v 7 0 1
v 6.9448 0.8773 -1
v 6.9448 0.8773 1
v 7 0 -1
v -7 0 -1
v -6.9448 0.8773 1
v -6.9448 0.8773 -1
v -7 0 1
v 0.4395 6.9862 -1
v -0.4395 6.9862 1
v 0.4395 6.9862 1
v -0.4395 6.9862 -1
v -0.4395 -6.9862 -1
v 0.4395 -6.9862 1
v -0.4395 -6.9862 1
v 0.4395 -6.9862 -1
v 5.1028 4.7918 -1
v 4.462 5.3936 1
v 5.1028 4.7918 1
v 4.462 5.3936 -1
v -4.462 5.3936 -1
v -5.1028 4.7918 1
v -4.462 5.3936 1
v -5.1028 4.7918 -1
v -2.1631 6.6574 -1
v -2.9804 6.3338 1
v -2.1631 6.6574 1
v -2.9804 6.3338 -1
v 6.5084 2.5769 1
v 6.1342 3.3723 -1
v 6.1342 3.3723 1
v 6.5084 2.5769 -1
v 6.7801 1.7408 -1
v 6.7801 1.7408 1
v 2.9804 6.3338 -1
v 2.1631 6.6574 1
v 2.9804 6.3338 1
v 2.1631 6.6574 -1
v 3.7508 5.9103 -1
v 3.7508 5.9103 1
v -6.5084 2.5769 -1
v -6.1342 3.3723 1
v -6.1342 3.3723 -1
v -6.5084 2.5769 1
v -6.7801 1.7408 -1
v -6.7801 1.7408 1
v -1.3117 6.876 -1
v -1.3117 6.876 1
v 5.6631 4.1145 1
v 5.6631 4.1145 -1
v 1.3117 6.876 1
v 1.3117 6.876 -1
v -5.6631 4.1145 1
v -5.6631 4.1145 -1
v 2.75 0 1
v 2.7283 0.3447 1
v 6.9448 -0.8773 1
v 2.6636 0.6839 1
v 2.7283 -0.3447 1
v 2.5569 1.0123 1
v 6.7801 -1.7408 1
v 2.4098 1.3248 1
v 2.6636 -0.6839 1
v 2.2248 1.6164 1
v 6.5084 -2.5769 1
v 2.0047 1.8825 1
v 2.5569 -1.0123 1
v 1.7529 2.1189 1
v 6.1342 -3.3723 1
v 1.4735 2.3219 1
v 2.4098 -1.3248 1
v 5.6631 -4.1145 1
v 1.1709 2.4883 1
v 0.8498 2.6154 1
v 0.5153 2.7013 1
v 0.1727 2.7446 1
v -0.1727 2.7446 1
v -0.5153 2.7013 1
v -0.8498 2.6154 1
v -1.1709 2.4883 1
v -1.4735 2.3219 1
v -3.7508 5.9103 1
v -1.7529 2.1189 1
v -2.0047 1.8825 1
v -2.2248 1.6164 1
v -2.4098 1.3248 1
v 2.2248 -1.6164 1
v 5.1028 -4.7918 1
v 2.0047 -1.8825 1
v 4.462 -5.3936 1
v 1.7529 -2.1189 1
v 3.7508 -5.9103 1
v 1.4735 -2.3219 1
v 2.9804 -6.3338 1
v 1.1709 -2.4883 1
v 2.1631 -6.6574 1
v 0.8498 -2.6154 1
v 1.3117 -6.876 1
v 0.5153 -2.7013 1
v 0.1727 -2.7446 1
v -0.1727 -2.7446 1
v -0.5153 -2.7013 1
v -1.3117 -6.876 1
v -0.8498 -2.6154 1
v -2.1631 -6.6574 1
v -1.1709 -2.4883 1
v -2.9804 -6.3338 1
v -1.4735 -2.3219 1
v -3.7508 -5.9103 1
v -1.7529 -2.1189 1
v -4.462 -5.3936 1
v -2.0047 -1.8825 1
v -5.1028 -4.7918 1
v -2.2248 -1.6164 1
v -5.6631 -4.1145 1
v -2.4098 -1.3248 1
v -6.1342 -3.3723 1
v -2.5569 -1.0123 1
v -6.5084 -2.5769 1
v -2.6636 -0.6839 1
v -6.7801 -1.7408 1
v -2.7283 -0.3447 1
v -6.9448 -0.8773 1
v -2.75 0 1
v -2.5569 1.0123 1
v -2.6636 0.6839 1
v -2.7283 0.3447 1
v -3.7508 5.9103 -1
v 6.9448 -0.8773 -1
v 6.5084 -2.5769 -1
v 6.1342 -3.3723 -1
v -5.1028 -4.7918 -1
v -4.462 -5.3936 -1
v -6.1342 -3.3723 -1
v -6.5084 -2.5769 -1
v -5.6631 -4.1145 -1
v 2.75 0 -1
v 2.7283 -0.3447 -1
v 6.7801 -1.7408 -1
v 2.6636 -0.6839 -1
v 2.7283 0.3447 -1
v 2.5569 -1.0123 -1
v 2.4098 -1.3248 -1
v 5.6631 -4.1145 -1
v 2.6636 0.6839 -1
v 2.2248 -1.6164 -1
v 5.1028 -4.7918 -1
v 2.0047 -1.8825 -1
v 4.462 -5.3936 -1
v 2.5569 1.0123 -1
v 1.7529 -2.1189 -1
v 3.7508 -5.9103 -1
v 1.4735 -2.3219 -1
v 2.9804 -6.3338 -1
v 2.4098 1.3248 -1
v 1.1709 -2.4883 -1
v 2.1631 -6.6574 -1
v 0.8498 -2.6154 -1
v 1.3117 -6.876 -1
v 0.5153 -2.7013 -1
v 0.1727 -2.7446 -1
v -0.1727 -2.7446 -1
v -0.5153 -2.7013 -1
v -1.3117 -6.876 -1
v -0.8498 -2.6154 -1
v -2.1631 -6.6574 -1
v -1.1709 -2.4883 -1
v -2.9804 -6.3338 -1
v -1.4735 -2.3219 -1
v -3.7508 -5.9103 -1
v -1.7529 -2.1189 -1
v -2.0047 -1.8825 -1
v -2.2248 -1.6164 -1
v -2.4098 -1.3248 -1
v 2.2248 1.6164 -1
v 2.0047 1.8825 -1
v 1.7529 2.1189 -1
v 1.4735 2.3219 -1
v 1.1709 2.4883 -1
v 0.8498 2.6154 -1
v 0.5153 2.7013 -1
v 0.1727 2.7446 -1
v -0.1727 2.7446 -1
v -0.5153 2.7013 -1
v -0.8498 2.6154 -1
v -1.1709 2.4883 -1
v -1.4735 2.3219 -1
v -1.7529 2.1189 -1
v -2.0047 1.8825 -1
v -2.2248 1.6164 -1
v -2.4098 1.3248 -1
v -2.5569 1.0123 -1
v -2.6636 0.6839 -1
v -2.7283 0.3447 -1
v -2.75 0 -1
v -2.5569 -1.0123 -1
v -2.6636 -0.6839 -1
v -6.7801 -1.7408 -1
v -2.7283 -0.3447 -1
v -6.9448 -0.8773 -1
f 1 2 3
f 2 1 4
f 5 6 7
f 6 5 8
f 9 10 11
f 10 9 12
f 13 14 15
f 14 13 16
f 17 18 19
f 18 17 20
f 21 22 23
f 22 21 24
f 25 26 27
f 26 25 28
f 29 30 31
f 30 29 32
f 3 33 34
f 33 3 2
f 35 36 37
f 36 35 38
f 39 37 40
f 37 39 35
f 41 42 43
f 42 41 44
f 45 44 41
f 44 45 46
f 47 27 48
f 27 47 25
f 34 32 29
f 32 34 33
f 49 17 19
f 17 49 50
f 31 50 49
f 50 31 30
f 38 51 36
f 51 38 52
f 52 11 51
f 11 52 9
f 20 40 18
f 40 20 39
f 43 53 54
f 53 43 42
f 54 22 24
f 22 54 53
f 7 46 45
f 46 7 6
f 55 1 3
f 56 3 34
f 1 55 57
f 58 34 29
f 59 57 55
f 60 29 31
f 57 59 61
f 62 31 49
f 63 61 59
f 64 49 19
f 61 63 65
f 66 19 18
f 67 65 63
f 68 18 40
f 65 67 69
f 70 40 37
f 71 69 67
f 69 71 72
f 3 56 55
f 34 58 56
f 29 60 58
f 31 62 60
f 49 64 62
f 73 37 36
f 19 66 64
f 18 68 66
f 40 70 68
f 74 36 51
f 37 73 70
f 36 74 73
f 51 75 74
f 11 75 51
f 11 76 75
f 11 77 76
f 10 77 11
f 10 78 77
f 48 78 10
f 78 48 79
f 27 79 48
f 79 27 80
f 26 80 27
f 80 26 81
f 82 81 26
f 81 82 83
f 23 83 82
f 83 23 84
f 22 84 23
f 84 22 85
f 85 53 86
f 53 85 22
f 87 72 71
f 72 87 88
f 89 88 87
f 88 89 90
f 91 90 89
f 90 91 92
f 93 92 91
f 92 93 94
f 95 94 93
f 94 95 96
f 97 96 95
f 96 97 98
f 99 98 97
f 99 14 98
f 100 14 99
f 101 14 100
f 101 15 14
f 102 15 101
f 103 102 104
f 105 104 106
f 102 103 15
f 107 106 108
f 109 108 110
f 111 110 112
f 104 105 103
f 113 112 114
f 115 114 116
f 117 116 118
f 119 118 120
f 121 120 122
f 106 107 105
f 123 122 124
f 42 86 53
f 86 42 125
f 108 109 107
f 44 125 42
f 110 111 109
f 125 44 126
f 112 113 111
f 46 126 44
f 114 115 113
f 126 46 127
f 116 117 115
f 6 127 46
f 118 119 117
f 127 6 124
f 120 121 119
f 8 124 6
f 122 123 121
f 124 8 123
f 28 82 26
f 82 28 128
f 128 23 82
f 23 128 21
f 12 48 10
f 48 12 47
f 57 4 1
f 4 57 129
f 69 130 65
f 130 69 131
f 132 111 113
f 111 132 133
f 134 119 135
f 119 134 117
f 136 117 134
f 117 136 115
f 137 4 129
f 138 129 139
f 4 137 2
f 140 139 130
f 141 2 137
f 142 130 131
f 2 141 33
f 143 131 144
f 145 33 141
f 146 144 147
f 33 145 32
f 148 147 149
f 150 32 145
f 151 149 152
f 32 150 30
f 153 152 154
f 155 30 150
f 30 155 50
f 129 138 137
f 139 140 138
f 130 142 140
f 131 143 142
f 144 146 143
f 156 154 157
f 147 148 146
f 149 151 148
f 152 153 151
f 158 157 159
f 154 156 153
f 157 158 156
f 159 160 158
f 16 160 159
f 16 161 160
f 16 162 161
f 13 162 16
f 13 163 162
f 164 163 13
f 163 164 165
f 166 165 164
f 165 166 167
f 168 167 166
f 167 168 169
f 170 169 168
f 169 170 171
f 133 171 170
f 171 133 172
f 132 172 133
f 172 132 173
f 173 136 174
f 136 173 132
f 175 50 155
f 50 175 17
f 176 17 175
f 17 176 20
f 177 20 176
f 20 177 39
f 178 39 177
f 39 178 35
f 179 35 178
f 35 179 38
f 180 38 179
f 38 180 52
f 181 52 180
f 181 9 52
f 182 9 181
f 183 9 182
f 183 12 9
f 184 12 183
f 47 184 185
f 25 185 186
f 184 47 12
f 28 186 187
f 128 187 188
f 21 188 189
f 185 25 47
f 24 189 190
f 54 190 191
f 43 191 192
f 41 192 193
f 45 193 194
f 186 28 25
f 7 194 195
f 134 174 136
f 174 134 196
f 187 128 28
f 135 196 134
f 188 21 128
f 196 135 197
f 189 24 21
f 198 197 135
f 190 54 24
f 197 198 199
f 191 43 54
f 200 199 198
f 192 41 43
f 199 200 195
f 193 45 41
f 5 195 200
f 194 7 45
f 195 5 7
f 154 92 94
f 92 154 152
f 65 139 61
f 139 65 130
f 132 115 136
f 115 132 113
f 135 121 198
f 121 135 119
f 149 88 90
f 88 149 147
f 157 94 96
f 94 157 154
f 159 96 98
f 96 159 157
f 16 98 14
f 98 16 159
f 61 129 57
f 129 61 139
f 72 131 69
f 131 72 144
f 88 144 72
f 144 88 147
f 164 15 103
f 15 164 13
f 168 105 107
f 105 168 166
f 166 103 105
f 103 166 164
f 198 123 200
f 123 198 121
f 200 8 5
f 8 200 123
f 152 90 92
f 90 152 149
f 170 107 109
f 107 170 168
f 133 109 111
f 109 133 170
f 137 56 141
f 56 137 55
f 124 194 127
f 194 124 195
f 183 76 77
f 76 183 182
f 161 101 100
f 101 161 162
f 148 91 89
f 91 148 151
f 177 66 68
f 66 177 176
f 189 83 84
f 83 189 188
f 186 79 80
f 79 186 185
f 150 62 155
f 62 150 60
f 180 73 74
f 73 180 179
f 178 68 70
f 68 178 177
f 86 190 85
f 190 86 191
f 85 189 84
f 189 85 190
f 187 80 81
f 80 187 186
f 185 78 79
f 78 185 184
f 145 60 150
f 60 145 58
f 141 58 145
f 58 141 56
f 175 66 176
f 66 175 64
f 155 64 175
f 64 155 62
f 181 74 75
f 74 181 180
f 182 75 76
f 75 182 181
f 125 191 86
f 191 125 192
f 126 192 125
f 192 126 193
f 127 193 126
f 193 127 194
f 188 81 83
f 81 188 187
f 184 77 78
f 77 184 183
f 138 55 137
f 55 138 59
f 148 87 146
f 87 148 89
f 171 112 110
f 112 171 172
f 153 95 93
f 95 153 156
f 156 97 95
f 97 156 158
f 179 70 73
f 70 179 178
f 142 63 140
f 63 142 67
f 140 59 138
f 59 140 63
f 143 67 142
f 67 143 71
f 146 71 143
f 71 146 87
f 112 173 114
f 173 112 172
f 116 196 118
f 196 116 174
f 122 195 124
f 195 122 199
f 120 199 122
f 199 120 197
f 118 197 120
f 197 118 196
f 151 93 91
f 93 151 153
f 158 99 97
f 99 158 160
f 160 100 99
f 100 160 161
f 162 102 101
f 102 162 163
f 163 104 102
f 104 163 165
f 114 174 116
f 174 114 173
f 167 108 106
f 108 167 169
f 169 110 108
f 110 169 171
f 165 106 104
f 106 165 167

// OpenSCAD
$fn = 50;


difference() {
	union() {
		translate(v = [0, 0, -1.0000000000]) {
			cylinder(h = 2, r = 7.0000000000);
		}
	}
	union() {
		translate(v = [0, 0, -100.0000000000]) {
			cylinder(h = 200, r = 2.7500000000);
		}
	}
}
